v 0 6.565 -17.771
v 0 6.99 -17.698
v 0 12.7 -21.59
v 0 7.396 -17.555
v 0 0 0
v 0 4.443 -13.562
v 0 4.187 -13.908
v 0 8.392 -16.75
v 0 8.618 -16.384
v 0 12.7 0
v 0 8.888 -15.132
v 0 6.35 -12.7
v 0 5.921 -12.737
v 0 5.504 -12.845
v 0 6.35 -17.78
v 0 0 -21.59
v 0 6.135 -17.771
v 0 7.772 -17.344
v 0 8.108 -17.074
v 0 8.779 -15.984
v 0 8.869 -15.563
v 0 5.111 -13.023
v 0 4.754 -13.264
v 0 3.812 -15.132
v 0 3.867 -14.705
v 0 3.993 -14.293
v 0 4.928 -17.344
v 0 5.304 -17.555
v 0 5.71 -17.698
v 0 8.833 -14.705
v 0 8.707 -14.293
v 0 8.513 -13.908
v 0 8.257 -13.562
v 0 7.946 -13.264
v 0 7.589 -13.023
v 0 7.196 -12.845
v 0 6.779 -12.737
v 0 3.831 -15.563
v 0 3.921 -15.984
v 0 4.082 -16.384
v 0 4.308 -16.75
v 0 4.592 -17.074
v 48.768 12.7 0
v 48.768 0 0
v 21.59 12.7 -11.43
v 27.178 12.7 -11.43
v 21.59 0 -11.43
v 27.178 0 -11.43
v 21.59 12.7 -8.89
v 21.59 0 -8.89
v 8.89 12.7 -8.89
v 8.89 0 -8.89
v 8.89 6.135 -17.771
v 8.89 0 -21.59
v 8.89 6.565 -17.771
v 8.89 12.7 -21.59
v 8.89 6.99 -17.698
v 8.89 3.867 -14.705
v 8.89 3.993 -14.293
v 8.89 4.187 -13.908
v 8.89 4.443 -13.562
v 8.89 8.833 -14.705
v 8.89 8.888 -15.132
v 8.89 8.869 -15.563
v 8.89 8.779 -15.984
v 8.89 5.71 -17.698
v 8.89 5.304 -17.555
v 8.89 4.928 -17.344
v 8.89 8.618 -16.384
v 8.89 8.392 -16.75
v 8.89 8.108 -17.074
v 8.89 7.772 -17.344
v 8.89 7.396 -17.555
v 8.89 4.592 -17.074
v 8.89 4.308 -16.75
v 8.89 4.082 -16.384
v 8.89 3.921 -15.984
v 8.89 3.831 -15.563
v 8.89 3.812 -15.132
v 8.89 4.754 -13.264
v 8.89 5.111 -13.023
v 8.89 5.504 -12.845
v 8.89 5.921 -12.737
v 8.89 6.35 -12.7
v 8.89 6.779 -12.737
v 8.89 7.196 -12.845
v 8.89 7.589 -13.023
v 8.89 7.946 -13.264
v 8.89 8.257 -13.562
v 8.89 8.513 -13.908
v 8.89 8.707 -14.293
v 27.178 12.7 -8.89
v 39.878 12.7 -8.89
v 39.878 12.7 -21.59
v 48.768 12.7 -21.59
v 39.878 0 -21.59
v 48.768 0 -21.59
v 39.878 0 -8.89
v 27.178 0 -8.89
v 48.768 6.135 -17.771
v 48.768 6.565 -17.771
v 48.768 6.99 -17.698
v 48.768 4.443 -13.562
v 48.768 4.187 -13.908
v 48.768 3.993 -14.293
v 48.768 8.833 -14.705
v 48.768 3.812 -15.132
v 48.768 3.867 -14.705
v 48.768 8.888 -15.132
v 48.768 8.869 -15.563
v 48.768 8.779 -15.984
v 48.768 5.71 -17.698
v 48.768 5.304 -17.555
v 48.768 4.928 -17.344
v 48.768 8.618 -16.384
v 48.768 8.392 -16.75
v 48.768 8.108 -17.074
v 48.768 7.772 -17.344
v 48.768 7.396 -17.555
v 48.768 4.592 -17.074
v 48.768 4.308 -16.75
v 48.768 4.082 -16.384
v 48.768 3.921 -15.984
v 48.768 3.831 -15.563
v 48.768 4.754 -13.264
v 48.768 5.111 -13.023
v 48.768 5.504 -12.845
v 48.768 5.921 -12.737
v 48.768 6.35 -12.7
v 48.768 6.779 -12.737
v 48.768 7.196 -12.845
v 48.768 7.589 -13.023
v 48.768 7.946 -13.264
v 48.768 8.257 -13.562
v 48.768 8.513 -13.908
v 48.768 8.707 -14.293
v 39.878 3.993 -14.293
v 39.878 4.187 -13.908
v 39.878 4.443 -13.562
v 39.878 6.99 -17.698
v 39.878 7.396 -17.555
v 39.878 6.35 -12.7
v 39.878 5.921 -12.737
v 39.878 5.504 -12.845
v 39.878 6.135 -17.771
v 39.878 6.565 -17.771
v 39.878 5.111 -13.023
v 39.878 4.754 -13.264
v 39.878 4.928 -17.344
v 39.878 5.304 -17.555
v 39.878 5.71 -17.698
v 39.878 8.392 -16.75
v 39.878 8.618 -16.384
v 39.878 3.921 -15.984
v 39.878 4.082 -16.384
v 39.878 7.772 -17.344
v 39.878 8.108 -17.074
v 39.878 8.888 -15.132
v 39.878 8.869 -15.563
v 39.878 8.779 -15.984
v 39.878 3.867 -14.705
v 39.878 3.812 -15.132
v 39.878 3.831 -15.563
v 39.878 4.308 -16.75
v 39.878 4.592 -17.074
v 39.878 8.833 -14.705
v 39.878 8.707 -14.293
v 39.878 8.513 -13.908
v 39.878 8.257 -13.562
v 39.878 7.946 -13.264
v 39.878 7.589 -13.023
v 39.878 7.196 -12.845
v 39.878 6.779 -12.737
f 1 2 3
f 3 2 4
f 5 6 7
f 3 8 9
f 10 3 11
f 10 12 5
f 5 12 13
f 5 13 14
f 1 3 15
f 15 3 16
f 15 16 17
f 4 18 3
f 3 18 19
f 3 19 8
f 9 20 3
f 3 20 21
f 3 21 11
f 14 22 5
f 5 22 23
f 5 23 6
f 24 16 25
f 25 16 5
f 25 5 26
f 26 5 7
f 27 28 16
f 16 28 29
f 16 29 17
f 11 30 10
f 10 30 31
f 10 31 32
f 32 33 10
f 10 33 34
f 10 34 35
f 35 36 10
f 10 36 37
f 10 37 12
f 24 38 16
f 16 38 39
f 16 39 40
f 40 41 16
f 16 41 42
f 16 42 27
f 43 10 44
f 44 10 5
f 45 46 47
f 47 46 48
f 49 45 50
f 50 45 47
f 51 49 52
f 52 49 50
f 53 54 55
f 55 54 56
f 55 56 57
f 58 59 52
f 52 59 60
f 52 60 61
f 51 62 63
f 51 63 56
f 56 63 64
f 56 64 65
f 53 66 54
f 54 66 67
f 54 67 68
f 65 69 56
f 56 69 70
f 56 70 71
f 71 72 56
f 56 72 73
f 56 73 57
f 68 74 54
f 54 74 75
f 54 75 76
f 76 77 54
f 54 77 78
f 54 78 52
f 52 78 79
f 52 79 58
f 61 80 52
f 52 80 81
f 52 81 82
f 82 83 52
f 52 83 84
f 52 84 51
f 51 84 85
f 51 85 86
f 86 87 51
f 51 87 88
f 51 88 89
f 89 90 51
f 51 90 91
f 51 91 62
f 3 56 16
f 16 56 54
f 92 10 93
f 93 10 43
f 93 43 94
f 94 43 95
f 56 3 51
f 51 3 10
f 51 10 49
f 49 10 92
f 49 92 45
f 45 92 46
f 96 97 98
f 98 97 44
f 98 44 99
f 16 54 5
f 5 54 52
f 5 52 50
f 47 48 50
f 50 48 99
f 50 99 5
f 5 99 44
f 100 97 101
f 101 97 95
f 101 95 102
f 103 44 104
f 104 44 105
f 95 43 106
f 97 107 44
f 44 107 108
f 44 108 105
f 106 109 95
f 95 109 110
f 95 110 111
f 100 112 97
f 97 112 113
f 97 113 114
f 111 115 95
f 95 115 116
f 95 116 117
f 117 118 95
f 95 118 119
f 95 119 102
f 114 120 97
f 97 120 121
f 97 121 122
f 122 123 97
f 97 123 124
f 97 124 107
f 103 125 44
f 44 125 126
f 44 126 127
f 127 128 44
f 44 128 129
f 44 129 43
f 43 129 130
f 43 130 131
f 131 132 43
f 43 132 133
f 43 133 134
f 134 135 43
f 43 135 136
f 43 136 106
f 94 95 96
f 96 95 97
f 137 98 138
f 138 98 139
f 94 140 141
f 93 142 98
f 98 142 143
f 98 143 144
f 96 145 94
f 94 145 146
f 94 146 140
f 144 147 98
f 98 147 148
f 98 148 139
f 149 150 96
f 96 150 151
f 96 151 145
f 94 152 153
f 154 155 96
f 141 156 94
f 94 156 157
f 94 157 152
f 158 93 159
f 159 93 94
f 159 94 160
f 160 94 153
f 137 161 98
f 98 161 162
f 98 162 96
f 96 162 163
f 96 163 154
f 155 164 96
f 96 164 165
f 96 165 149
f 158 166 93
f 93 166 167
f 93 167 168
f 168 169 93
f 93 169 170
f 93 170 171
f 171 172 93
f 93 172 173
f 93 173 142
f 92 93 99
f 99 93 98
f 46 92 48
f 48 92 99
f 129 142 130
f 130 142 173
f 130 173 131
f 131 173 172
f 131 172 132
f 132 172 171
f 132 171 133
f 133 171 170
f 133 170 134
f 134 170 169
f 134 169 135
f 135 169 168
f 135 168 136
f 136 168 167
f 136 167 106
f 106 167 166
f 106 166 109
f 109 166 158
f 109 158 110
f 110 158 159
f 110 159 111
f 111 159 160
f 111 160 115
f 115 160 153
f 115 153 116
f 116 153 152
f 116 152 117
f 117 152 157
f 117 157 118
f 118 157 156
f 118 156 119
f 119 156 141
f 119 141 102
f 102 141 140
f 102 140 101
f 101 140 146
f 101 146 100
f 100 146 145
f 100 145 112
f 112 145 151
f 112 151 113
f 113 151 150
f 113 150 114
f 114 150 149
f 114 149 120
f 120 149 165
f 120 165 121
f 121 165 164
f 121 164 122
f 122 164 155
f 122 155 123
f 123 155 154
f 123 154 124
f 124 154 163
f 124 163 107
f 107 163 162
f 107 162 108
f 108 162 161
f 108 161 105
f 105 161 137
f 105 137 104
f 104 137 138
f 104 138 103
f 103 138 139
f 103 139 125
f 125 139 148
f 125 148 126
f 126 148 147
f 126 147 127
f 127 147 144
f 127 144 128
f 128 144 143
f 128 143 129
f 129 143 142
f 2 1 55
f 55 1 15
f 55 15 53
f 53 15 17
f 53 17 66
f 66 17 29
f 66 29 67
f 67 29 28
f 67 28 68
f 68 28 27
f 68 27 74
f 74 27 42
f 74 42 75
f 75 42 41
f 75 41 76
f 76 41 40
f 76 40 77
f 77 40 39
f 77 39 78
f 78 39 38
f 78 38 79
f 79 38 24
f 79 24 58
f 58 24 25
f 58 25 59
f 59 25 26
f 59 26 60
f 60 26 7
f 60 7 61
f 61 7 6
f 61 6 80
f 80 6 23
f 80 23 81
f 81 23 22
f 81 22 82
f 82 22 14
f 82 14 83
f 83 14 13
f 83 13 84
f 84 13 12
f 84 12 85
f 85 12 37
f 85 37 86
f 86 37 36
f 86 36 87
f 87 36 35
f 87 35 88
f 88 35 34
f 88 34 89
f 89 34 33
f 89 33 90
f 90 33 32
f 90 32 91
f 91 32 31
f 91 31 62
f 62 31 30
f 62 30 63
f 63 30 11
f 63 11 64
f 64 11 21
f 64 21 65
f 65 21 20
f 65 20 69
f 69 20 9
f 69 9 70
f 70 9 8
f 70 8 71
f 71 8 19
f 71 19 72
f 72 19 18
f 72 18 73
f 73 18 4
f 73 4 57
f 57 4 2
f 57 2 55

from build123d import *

# Parameters (mm, degrees)
BOSS_EXTRUDE1_DEPTH     = 12.7
CUT_EXTRUDE1_DEPTH      = 55.824592329
CUT_EXTRUDE1_DEPTH_BACK = 55.824592329
SKETCH3_R               = 2.54


with BuildPart() as part:
    # Sketch1 → Boss-Extrude1 (new body)
    with BuildSketch(Plane(origin=(0, 0, 0), x_dir=(1, 0, 0), z_dir=(0, 1, 0))):
        Polygon((0, 0), (24.384, 0), (24.384, 11.43), (21.59, 11.43), (21.59, 8.89), (8.89, 8.89), (8.89, 21.59), (0, 21.59), align=None)
    boss_extrude1 = extrude(amount=BOSS_EXTRUDE1_DEPTH)

    # Mirror1: Boss-Extrude1 across plane
    add(boss_extrude1.mirror(Plane(origin=(24.384, 12.7, -11.43), x_dir=(0, 0, 1), z_dir=(-1, 0, 0))))

    # Sketch3 → Cut-Extrude1 (cut, two sides: drawn at the far end of the back side and taken through both)
    with BuildSketch(Plane.ZY.offset(-CUT_EXTRUDE1_DEPTH_BACK)):
        with Locations((-15.24, 6.35)):
            Circle(SKETCH3_R)
    extrude(amount=CUT_EXTRUDE1_DEPTH + CUT_EXTRUDE1_DEPTH_BACK, mode=Mode.SUBTRACT)


solid = part.part
